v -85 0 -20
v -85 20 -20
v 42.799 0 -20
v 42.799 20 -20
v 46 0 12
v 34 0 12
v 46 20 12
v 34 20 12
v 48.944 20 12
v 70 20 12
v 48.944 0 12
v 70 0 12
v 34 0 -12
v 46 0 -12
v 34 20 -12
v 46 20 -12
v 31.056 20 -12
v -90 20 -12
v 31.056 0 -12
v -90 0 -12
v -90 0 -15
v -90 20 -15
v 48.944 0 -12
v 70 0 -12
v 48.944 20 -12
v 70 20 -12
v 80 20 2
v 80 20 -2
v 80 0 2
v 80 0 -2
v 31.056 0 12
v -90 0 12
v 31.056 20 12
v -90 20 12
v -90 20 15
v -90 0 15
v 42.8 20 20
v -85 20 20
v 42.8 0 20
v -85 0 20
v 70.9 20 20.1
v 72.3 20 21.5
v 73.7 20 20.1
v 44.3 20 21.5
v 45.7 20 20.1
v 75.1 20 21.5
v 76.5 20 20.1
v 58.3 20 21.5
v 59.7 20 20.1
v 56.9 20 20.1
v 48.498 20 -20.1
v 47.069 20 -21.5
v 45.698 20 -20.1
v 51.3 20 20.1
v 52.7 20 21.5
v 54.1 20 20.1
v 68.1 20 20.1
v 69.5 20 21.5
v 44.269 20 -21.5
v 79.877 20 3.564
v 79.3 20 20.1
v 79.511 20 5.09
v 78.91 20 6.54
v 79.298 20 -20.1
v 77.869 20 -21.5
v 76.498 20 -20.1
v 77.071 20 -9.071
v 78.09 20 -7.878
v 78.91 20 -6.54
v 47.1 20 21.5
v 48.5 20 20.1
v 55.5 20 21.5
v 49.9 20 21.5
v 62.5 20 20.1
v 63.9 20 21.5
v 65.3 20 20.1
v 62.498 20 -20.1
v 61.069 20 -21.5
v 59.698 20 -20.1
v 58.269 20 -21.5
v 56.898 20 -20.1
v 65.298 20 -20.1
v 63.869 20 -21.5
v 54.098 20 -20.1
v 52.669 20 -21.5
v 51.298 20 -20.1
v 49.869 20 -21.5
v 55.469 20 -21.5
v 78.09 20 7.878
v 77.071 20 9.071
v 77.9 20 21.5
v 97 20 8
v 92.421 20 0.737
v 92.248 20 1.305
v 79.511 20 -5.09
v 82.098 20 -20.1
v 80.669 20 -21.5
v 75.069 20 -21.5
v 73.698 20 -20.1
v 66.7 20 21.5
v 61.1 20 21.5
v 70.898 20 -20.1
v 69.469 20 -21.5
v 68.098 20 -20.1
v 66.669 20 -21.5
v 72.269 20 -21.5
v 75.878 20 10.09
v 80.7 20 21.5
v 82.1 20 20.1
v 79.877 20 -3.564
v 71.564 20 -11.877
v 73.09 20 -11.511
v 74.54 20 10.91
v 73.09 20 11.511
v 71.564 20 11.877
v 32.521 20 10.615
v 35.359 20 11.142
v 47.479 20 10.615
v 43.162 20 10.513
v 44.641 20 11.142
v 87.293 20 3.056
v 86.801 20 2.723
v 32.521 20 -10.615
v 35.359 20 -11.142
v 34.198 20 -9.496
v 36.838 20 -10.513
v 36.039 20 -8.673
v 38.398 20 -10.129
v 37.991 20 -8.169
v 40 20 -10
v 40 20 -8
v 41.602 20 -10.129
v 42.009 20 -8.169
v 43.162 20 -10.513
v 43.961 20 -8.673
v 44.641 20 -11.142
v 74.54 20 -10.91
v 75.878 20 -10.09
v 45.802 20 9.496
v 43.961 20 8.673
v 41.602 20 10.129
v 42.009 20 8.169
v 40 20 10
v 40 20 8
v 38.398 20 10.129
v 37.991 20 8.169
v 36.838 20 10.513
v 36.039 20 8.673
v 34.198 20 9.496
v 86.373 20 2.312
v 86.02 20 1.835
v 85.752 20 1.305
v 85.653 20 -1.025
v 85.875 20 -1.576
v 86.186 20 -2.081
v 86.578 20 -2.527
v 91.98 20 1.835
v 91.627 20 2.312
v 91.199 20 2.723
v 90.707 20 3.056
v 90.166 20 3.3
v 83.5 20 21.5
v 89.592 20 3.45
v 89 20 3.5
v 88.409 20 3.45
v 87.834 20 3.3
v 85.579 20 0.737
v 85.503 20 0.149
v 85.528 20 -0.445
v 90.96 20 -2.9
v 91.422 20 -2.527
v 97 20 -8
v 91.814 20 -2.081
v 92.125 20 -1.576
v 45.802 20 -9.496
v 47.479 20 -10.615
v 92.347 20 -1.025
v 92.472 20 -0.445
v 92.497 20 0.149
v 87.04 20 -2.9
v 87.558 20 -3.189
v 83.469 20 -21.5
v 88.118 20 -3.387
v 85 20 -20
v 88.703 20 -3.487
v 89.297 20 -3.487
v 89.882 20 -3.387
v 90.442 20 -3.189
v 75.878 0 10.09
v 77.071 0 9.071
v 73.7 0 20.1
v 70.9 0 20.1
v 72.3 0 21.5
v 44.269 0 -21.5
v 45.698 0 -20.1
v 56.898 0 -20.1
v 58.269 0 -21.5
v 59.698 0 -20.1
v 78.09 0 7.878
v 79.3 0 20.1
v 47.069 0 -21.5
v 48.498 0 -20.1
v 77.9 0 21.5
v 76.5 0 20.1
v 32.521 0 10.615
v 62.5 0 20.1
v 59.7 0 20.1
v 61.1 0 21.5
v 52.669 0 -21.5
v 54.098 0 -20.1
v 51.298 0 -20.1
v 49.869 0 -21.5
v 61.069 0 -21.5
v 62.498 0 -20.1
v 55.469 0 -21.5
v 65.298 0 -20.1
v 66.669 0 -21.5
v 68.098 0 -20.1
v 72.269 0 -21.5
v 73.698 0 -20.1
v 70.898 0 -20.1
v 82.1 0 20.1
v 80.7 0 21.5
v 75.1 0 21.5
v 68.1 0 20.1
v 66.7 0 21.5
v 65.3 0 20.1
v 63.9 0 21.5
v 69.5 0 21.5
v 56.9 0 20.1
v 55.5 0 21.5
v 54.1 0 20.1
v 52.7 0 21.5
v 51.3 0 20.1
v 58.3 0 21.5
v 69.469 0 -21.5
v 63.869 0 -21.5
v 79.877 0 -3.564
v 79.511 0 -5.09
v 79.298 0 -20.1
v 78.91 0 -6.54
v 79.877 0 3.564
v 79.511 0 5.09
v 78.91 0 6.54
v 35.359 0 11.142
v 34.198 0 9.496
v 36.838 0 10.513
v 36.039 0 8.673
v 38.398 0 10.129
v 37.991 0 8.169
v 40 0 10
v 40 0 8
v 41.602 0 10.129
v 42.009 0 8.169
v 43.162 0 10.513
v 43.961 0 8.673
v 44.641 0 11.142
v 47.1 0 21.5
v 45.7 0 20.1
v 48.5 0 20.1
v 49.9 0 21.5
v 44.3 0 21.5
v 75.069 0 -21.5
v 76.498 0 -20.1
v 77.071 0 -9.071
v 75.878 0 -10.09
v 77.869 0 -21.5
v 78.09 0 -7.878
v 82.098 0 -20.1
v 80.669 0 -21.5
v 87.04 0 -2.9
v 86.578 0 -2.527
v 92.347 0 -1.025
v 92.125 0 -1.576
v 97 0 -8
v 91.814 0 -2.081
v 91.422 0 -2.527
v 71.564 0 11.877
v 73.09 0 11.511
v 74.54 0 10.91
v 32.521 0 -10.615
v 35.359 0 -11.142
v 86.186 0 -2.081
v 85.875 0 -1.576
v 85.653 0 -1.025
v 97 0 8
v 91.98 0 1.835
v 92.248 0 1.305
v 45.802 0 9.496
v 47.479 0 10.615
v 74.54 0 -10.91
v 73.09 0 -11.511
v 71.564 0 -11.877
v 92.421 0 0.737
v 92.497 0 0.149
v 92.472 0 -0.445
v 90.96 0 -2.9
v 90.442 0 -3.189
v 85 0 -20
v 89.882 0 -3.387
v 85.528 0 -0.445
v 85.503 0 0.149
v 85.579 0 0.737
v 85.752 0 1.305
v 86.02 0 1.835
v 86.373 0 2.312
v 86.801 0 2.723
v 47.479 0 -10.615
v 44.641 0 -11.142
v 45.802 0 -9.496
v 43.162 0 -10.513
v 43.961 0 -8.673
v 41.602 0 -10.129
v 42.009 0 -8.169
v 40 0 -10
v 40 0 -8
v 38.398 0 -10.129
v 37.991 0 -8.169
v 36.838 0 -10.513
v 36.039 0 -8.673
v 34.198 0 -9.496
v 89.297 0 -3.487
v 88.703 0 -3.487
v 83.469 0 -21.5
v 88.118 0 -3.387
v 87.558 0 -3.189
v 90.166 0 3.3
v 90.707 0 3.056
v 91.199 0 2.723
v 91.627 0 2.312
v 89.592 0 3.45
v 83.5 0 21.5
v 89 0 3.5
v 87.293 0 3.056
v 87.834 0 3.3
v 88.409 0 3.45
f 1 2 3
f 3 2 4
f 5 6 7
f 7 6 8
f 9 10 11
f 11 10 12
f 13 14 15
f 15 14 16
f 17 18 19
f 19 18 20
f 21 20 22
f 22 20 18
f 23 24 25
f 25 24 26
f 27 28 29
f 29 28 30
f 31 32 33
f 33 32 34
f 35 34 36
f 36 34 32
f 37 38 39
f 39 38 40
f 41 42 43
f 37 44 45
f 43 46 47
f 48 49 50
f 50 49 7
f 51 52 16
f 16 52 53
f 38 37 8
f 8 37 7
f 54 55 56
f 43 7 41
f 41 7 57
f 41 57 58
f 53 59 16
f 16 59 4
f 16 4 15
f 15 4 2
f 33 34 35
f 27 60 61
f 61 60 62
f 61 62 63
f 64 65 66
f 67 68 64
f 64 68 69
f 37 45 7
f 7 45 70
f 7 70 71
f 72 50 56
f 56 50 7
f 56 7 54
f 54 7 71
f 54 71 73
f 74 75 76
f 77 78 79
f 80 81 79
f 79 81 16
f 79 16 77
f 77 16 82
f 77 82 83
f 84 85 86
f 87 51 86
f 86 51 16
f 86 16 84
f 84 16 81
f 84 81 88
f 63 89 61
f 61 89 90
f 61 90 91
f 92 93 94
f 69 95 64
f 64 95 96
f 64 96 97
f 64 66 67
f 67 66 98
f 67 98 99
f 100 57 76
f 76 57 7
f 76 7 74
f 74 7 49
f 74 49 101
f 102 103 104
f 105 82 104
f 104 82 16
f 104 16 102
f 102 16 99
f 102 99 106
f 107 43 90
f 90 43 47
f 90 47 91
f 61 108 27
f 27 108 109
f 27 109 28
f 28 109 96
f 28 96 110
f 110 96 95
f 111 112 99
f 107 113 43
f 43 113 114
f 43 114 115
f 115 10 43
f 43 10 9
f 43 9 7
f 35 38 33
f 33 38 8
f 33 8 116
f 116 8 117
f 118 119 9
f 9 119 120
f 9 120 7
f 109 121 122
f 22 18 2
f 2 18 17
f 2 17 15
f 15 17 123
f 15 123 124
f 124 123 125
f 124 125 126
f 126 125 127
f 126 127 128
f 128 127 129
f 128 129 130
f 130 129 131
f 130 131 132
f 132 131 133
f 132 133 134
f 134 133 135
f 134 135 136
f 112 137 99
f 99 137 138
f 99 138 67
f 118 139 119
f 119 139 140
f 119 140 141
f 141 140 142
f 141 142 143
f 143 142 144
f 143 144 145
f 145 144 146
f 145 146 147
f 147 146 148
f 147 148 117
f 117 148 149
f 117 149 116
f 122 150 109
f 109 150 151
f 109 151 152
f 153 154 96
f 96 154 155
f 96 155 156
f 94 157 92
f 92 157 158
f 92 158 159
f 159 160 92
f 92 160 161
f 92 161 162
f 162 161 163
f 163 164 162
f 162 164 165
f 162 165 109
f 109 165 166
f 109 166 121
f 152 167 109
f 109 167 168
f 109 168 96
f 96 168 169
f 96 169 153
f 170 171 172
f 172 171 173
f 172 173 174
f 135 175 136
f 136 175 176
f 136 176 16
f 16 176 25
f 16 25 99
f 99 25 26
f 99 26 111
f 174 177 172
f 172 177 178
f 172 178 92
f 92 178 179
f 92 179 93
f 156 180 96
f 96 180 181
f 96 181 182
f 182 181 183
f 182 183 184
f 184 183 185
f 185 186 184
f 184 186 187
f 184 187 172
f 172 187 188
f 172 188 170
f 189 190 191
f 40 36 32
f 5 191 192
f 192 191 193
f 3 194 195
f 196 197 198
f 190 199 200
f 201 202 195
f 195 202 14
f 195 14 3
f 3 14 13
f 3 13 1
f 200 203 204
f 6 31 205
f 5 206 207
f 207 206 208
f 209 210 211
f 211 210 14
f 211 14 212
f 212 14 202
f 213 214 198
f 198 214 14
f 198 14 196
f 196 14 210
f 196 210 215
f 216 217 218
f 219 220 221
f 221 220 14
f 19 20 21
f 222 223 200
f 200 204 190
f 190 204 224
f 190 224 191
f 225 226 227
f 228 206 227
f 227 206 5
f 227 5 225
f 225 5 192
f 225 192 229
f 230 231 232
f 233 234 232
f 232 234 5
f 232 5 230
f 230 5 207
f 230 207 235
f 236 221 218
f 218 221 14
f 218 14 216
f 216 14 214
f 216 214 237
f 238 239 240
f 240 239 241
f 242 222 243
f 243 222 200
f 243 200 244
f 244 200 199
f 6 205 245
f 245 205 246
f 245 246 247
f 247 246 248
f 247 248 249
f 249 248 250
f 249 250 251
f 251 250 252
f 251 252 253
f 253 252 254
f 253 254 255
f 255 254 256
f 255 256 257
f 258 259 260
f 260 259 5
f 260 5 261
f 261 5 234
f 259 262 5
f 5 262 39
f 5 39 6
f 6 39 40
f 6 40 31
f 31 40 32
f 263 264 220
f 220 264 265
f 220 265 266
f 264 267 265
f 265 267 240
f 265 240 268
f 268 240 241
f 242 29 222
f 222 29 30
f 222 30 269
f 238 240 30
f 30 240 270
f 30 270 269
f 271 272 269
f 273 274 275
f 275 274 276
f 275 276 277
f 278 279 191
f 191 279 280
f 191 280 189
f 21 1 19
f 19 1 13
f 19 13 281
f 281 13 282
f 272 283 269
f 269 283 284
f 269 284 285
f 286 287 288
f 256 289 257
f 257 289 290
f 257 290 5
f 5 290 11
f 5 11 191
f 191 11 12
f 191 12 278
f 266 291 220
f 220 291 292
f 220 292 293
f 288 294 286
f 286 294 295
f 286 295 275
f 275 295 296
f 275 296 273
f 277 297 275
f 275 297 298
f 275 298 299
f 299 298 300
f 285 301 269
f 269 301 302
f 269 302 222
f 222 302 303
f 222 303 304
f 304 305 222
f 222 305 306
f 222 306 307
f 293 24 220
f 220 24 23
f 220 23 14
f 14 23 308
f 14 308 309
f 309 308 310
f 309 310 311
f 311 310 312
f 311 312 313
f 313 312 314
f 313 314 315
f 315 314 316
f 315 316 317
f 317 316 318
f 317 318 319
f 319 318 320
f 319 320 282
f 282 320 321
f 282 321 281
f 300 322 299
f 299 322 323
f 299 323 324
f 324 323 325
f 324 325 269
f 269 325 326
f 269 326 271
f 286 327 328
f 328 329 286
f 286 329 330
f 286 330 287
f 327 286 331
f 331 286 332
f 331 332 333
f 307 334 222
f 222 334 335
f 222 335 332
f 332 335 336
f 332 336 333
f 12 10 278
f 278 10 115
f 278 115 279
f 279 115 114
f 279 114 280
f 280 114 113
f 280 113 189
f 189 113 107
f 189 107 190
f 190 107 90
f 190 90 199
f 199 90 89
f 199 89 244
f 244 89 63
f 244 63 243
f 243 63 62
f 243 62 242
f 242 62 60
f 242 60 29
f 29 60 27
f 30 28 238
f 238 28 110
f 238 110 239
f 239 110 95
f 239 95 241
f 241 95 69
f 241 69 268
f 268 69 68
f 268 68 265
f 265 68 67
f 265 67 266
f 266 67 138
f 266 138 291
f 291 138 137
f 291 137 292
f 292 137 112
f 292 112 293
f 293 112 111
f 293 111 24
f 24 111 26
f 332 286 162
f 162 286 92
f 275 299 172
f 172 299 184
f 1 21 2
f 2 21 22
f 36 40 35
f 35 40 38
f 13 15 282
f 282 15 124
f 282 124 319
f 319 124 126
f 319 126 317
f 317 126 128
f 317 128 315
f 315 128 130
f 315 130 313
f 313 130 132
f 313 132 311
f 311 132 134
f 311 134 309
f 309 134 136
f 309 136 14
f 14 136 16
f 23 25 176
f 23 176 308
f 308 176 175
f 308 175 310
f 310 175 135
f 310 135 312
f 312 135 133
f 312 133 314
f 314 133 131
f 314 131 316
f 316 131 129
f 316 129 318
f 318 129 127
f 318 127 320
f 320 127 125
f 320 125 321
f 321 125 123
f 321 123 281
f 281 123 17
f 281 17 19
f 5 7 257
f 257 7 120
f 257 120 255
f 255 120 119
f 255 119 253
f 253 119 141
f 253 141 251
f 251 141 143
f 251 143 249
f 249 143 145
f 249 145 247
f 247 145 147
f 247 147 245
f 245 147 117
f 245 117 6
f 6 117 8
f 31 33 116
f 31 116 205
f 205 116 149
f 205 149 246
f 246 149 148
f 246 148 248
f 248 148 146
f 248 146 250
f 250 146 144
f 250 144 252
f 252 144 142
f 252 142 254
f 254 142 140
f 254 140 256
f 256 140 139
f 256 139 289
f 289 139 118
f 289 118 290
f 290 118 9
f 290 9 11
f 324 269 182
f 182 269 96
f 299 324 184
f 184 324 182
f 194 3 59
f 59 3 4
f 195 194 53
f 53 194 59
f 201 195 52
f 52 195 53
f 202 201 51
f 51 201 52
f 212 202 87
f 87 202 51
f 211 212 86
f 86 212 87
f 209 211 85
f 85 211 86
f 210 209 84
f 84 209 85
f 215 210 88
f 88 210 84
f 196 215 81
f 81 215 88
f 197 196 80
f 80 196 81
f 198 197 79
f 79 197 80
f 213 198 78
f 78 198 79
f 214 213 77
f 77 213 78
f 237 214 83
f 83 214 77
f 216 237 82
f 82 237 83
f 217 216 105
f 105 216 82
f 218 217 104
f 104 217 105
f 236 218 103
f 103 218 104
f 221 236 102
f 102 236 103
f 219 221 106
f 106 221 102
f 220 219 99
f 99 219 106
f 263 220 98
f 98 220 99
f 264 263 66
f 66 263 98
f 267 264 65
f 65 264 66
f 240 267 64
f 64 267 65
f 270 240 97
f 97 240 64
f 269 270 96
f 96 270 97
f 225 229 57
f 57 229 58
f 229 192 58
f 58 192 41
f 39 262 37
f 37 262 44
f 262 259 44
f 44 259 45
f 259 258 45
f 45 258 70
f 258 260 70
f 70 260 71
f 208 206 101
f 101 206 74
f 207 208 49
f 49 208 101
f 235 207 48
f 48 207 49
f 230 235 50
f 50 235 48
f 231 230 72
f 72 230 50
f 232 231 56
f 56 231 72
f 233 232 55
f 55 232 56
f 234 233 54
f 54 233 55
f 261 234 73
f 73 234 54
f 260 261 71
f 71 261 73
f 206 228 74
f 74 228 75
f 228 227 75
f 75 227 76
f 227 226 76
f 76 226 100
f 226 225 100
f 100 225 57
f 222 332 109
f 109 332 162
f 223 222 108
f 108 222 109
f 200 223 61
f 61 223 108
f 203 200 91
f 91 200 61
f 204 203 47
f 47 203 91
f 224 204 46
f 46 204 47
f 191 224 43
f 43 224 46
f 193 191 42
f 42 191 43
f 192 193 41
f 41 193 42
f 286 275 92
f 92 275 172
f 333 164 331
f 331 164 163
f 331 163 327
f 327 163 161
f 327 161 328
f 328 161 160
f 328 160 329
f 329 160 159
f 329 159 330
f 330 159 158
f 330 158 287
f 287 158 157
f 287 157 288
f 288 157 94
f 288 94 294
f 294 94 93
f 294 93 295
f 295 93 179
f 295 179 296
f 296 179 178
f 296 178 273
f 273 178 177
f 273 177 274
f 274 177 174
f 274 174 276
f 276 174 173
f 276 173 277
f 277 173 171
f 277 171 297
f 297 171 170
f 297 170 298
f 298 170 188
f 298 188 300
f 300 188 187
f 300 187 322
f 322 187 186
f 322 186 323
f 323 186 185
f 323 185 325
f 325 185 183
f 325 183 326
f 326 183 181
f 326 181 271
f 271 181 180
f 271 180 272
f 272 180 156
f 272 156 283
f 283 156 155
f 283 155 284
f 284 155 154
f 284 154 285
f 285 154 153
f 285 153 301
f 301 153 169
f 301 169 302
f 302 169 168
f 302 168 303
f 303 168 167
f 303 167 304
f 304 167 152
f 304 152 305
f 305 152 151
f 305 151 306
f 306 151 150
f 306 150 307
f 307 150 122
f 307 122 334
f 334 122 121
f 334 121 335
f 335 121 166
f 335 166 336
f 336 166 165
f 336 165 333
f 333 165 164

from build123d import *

# Parameters (mm, degrees)
BOSS_EXTRUDE1_DEPTH = 20
FILLET1_R           = 10
CHAMFER1_SIZE       = 5
CHAMFER2_SIZE       = 5
BOSS_EXTRUDE2_DEPTH = 20
BOSS_EXTRUDE3_DEPTH = 20
BOSS_EXTRUDE4_DEPTH = 20
BOSS_EXTRUDE5_DEPTH = 20
SKETCH6_R           = 3.5
CUT_EXTRUDE1_DEPTH  = 20


with BuildPart() as part:
    # Sketch1 → Boss-Extrude1 (new body)
    with BuildSketch(Plane(origin=(0, 0, 0), x_dir=(1, 0, 0), z_dir=(0, 1, 0))):
        Polygon((-90, -12), (-90, -20), (90, -20), (90, 20), (-90, 20), (-90, 12), (80, 12), (80, -12), align=None)
    extrude(amount=BOSS_EXTRUDE1_DEPTH)

    # Fillet1
    fillet1_edges = [part.edges().sort_by_distance(p)[0] for p in [
        (80, 10, 12),
        (80, 10, -12),
    ]]
    fillet(fillet1_edges, radius=FILLET1_R)

    # Chamfer1
    chamfer1_edges = [part.edges().sort_by_distance(p)[0] for p in [
        (90, 10, 20),
        (90, 10, -20),
    ]]
    chamfer(chamfer1_edges, length=CHAMFER1_SIZE)

    # Chamfer2
    chamfer2_edges = [part.edges().sort_by_distance(p)[0] for p in [
        (-90, 10, 20),
        (-90, 10, -20),
    ]]
    chamfer(chamfer2_edges, length=CHAMFER2_SIZE)

    # Sketch2 → Boss-Extrude2 (add)
    with BuildSketch(Plane(origin=(0, 20, 0), x_dir=(1, 0, 0), z_dir=(0, 1, 0))):
        with BuildLine():
            Line((31.05572809, -12), (34, -12))
            ThreePointArc((34, -12), (40, -10), (46, -12))
            Line((46, -12), (48.94427191, -12))
            ThreePointArc((48.94427191, -12), (40, -8), (31.05572809, -12))
        make_face()
        with BuildLine():
            Line((31.05572809, 12), (34, 12))
            ThreePointArc((34, 12), (40, 10), (46, 12))
            Line((46, 12), (48.94427191, 12))
            ThreePointArc((48.94427191, 12), (40, 8), (31.05572809, 12))
        make_face()
    extrude(amount=-BOSS_EXTRUDE2_DEPTH)

    # Sketch3 → Boss-Extrude3 (add)
    with BuildSketch(Plane(origin=(0, 20, 0), x_dir=(1, 0, 0), z_dir=(0, 1, 0))):
        Polygon((85, 20), (83.468895387, 21.5), (82.097625423, 20.100294822), (80.668895387, 21.5), (79.297625423, 20.100294822), (77.868895387, 21.5), (76.497625423, 20.100294822), (75.068895387, 21.5), (73.697625423, 20.100294822), (72.268895387, 21.5), (70.897625423, 20.100294822), (69.468895387, 21.5), (68.097625423, 20.100294822), (66.668895387, 21.5), (65.297625423, 20.100294822), (63.868895387, 21.5), (62.497625423, 20.100294822), (61.068895387, 21.5), (59.697625423, 20.100294822), (58.268895387, 21.5), (56.897625423, 20.100294822), (55.468895387, 21.5), (54.097625423, 20.100294822), (52.668895387, 21.5), (51.297625423, 20.100294822), (49.868895387, 21.5), (48.497625423, 20.100294822), (47.068895387, 21.5), (45.697625423, 20.100294822), (44.268895387, 21.5), (42.799368105, 20), align=None)
    extrude(amount=-BOSS_EXTRUDE3_DEPTH)

    # Sketch4 → Boss-Extrude4 (add)
    with BuildSketch(Plane(origin=(0, 20, 0), x_dir=(1, 0, 0), z_dir=(0, 1, 0))):
        Polygon((83.5, -21.5), (85, -20), (42.8, -20), (44.3, -21.5), (45.7, -20.1), (47.1, -21.5), (48.5, -20.1), (49.9, -21.5), (51.3, -20.1), (52.7, -21.5), (54.1, -20.1), (55.5, -21.5), (56.9, -20.1), (58.3, -21.5), (59.7, -20.1), (61.1, -21.5), (62.5, -20.1), (63.9, -21.5), (65.3, -20.1), (66.7, -21.5), (68.1, -20.1), (69.5, -21.5), (70.9, -20.1), (72.3, -21.5), (73.7, -20.1), (75.1, -21.5), (76.5, -20.1), (77.9, -21.5), (79.3, -20.1), (80.7, -21.5), (82.1, -20.1), align=None)
    extrude(amount=-BOSS_EXTRUDE4_DEPTH)

    # Sketch5 → Boss-Extrude5 (add)
    with BuildSketch(Plane(origin=(0, 20, 0), x_dir=(1, 0, 0), z_dir=(0, 1, 0))):
        Polygon((90, 15), (97, 8), (97, -8), (90, -15), align=None)
    extrude(amount=-BOSS_EXTRUDE5_DEPTH)

    # Sketch6 → Cut-Extrude1 (cut)
    with BuildSketch(Plane(origin=(0, 20, 0), x_dir=(1, 0, 0), z_dir=(0, 1, 0))):
        with Locations(Location((89, 0, 0), (0, 0, 270))):
            Circle(SKETCH6_R)
    extrude(amount=-CUT_EXTRUDE1_DEPTH, mode=Mode.SUBTRACT)


solid = part.part
